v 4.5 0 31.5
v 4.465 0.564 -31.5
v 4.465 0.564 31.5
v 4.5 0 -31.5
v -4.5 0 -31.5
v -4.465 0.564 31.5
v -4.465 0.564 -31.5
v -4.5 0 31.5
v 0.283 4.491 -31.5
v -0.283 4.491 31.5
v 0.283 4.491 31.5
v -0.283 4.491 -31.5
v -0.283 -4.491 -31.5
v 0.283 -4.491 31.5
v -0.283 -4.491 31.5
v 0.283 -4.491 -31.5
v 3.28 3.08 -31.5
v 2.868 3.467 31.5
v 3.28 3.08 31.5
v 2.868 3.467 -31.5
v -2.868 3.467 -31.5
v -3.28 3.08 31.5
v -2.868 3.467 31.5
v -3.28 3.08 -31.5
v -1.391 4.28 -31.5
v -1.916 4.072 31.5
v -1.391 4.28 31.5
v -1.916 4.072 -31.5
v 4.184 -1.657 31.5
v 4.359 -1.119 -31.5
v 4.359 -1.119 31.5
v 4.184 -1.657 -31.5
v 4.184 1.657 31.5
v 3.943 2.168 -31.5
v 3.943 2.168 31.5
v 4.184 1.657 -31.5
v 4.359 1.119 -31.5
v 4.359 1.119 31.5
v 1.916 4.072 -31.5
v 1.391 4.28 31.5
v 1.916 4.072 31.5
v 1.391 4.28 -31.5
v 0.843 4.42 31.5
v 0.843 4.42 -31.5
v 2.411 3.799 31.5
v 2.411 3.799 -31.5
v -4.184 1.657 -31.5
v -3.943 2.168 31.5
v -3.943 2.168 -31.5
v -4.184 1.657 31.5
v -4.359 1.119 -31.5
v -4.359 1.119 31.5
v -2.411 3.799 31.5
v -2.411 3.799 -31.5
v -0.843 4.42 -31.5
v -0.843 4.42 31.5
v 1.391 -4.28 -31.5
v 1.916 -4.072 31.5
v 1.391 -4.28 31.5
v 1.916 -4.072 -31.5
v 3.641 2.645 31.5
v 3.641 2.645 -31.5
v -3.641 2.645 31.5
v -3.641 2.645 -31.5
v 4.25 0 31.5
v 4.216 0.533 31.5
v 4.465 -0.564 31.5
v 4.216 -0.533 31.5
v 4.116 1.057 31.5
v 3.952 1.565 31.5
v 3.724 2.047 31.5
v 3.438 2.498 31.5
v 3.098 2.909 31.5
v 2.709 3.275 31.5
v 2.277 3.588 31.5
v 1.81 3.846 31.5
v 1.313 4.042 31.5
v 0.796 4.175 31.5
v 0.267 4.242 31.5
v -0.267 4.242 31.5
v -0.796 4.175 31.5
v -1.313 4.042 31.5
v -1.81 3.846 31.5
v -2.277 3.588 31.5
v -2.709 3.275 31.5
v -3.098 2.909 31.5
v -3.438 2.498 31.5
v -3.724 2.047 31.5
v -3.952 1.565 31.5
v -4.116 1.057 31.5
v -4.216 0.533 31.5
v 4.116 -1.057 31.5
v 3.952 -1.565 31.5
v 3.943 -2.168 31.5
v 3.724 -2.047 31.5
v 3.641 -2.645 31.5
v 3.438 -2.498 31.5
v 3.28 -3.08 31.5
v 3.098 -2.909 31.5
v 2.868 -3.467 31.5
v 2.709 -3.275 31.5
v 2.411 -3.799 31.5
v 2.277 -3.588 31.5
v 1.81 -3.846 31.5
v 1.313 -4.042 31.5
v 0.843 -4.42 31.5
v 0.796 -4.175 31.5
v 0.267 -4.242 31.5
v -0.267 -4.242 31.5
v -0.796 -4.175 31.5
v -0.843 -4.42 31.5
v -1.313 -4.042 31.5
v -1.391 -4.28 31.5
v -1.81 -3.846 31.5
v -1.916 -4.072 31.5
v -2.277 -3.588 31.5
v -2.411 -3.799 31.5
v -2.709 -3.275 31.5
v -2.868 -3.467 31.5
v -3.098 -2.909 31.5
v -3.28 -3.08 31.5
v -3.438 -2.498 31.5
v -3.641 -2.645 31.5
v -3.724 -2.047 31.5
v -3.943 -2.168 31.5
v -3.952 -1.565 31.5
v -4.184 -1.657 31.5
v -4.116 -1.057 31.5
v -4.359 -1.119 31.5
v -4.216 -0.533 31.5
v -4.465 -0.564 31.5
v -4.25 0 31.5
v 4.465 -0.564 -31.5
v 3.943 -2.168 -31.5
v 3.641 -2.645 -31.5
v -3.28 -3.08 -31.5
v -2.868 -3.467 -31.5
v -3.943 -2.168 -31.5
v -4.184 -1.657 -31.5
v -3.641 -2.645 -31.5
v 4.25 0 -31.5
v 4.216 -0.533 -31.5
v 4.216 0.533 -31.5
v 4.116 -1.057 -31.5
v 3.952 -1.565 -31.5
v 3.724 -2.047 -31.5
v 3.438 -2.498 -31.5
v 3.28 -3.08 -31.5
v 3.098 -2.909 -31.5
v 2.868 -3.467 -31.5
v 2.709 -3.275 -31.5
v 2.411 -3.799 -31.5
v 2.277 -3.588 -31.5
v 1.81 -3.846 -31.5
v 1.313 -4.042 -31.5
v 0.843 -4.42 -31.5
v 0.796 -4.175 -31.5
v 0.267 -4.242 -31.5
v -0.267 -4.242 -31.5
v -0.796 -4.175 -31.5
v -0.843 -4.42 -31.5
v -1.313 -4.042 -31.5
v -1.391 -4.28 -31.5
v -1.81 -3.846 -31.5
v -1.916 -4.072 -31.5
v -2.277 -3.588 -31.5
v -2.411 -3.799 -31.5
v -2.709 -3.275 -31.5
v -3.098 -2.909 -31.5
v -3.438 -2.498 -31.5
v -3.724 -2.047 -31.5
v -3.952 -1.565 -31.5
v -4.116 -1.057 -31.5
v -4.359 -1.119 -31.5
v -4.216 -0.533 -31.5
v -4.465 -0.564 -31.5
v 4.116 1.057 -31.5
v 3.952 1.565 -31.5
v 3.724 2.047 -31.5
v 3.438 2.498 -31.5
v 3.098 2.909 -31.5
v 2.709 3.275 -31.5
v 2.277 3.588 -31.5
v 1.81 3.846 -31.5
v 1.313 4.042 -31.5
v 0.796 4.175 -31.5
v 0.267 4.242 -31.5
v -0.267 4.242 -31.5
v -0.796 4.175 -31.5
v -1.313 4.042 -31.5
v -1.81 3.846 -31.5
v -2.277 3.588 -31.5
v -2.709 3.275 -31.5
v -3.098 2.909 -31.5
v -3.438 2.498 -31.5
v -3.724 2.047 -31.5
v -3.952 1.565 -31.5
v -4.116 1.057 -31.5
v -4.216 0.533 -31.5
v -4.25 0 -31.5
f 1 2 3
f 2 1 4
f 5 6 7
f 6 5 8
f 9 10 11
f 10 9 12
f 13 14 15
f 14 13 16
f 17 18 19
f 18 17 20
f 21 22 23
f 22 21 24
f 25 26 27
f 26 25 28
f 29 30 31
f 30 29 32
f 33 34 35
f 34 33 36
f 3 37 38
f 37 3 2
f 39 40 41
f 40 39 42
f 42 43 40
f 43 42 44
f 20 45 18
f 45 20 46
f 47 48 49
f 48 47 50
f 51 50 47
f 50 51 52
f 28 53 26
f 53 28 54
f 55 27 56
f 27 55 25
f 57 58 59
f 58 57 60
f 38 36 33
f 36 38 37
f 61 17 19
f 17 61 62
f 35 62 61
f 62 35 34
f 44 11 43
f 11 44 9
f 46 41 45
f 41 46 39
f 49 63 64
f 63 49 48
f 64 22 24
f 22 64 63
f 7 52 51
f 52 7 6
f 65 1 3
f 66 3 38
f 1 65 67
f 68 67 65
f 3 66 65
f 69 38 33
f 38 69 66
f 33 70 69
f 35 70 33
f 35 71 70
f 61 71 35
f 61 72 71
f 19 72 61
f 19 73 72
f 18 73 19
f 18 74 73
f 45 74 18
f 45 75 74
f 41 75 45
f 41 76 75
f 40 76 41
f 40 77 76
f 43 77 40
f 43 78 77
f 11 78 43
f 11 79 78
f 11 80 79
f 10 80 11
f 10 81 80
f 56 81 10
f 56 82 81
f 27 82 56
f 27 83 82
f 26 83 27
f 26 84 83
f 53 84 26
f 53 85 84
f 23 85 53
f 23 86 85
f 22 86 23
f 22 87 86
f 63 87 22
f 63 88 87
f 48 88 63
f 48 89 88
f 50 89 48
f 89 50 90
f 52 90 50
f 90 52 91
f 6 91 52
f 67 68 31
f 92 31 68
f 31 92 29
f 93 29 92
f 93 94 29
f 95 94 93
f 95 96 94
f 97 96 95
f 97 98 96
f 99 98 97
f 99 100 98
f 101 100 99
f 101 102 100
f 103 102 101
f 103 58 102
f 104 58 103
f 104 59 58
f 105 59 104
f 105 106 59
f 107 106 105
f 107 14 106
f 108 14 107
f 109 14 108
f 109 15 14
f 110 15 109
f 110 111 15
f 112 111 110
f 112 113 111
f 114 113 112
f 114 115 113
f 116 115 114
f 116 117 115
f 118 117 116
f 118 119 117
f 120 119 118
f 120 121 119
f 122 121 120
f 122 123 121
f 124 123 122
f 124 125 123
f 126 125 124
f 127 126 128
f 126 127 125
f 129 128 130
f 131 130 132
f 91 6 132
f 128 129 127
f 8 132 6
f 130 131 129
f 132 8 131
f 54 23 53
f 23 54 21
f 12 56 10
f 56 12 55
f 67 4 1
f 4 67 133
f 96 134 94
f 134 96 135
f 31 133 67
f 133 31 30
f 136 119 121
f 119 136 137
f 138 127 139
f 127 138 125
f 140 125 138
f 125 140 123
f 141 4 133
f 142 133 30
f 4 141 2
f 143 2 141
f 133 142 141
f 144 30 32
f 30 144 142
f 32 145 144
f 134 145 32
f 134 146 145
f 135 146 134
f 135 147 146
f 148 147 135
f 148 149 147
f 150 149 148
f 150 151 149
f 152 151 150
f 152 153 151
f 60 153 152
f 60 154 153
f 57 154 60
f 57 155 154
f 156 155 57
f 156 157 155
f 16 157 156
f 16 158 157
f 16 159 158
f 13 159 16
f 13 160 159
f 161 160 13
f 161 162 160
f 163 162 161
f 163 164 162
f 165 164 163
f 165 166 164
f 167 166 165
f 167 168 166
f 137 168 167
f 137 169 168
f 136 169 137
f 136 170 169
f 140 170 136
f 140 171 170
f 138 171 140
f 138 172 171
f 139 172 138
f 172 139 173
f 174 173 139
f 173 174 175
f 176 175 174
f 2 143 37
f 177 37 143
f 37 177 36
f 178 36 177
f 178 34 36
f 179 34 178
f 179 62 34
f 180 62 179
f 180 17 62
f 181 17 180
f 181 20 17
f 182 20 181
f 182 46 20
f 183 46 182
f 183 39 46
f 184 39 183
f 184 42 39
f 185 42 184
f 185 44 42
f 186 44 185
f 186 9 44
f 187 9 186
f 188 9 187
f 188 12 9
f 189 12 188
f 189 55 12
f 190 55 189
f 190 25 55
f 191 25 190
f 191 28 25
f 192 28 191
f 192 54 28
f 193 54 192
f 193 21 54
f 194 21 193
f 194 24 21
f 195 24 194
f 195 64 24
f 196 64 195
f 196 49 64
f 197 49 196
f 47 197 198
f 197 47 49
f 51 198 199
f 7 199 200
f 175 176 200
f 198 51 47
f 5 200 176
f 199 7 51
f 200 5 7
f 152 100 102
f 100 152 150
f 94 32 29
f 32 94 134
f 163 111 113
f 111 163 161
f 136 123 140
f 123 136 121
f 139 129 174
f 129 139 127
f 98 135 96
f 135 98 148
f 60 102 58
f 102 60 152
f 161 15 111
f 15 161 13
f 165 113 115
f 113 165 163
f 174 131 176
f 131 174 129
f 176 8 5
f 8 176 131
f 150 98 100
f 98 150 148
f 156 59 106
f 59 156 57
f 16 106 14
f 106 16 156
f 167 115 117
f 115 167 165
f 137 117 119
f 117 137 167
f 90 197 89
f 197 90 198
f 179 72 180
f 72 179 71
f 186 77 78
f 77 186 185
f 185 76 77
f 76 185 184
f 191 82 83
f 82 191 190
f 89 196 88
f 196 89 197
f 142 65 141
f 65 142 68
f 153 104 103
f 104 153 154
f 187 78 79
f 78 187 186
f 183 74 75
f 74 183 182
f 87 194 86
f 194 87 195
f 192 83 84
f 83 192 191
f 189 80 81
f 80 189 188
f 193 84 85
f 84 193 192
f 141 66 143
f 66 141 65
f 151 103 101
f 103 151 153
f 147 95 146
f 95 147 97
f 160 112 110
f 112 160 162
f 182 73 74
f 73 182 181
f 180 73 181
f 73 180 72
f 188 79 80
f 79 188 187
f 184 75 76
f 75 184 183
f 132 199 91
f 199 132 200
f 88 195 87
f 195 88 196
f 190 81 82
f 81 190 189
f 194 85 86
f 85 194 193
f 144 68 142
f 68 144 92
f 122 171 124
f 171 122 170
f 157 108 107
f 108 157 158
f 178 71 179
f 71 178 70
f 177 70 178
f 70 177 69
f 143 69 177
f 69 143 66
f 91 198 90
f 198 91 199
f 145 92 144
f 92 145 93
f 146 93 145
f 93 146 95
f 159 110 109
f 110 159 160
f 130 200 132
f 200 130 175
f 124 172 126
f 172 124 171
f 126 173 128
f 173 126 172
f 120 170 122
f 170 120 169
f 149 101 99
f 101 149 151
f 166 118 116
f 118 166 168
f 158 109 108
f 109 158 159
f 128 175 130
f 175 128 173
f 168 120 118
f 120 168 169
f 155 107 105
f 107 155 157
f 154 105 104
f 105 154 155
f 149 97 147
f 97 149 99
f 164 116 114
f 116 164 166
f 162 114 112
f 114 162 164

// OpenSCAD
$fn = 50;


difference() {
	union() {
		translate(v = [0, 0, -31.5000000000]) {
			cylinder(h = 63, r = 4.5000000000);
		}
	}
	union() {
		translate(v = [0, 0, -100.0000000000]) {
			cylinder(h = 200, r = 4.2500000000);
		}
	}
}
